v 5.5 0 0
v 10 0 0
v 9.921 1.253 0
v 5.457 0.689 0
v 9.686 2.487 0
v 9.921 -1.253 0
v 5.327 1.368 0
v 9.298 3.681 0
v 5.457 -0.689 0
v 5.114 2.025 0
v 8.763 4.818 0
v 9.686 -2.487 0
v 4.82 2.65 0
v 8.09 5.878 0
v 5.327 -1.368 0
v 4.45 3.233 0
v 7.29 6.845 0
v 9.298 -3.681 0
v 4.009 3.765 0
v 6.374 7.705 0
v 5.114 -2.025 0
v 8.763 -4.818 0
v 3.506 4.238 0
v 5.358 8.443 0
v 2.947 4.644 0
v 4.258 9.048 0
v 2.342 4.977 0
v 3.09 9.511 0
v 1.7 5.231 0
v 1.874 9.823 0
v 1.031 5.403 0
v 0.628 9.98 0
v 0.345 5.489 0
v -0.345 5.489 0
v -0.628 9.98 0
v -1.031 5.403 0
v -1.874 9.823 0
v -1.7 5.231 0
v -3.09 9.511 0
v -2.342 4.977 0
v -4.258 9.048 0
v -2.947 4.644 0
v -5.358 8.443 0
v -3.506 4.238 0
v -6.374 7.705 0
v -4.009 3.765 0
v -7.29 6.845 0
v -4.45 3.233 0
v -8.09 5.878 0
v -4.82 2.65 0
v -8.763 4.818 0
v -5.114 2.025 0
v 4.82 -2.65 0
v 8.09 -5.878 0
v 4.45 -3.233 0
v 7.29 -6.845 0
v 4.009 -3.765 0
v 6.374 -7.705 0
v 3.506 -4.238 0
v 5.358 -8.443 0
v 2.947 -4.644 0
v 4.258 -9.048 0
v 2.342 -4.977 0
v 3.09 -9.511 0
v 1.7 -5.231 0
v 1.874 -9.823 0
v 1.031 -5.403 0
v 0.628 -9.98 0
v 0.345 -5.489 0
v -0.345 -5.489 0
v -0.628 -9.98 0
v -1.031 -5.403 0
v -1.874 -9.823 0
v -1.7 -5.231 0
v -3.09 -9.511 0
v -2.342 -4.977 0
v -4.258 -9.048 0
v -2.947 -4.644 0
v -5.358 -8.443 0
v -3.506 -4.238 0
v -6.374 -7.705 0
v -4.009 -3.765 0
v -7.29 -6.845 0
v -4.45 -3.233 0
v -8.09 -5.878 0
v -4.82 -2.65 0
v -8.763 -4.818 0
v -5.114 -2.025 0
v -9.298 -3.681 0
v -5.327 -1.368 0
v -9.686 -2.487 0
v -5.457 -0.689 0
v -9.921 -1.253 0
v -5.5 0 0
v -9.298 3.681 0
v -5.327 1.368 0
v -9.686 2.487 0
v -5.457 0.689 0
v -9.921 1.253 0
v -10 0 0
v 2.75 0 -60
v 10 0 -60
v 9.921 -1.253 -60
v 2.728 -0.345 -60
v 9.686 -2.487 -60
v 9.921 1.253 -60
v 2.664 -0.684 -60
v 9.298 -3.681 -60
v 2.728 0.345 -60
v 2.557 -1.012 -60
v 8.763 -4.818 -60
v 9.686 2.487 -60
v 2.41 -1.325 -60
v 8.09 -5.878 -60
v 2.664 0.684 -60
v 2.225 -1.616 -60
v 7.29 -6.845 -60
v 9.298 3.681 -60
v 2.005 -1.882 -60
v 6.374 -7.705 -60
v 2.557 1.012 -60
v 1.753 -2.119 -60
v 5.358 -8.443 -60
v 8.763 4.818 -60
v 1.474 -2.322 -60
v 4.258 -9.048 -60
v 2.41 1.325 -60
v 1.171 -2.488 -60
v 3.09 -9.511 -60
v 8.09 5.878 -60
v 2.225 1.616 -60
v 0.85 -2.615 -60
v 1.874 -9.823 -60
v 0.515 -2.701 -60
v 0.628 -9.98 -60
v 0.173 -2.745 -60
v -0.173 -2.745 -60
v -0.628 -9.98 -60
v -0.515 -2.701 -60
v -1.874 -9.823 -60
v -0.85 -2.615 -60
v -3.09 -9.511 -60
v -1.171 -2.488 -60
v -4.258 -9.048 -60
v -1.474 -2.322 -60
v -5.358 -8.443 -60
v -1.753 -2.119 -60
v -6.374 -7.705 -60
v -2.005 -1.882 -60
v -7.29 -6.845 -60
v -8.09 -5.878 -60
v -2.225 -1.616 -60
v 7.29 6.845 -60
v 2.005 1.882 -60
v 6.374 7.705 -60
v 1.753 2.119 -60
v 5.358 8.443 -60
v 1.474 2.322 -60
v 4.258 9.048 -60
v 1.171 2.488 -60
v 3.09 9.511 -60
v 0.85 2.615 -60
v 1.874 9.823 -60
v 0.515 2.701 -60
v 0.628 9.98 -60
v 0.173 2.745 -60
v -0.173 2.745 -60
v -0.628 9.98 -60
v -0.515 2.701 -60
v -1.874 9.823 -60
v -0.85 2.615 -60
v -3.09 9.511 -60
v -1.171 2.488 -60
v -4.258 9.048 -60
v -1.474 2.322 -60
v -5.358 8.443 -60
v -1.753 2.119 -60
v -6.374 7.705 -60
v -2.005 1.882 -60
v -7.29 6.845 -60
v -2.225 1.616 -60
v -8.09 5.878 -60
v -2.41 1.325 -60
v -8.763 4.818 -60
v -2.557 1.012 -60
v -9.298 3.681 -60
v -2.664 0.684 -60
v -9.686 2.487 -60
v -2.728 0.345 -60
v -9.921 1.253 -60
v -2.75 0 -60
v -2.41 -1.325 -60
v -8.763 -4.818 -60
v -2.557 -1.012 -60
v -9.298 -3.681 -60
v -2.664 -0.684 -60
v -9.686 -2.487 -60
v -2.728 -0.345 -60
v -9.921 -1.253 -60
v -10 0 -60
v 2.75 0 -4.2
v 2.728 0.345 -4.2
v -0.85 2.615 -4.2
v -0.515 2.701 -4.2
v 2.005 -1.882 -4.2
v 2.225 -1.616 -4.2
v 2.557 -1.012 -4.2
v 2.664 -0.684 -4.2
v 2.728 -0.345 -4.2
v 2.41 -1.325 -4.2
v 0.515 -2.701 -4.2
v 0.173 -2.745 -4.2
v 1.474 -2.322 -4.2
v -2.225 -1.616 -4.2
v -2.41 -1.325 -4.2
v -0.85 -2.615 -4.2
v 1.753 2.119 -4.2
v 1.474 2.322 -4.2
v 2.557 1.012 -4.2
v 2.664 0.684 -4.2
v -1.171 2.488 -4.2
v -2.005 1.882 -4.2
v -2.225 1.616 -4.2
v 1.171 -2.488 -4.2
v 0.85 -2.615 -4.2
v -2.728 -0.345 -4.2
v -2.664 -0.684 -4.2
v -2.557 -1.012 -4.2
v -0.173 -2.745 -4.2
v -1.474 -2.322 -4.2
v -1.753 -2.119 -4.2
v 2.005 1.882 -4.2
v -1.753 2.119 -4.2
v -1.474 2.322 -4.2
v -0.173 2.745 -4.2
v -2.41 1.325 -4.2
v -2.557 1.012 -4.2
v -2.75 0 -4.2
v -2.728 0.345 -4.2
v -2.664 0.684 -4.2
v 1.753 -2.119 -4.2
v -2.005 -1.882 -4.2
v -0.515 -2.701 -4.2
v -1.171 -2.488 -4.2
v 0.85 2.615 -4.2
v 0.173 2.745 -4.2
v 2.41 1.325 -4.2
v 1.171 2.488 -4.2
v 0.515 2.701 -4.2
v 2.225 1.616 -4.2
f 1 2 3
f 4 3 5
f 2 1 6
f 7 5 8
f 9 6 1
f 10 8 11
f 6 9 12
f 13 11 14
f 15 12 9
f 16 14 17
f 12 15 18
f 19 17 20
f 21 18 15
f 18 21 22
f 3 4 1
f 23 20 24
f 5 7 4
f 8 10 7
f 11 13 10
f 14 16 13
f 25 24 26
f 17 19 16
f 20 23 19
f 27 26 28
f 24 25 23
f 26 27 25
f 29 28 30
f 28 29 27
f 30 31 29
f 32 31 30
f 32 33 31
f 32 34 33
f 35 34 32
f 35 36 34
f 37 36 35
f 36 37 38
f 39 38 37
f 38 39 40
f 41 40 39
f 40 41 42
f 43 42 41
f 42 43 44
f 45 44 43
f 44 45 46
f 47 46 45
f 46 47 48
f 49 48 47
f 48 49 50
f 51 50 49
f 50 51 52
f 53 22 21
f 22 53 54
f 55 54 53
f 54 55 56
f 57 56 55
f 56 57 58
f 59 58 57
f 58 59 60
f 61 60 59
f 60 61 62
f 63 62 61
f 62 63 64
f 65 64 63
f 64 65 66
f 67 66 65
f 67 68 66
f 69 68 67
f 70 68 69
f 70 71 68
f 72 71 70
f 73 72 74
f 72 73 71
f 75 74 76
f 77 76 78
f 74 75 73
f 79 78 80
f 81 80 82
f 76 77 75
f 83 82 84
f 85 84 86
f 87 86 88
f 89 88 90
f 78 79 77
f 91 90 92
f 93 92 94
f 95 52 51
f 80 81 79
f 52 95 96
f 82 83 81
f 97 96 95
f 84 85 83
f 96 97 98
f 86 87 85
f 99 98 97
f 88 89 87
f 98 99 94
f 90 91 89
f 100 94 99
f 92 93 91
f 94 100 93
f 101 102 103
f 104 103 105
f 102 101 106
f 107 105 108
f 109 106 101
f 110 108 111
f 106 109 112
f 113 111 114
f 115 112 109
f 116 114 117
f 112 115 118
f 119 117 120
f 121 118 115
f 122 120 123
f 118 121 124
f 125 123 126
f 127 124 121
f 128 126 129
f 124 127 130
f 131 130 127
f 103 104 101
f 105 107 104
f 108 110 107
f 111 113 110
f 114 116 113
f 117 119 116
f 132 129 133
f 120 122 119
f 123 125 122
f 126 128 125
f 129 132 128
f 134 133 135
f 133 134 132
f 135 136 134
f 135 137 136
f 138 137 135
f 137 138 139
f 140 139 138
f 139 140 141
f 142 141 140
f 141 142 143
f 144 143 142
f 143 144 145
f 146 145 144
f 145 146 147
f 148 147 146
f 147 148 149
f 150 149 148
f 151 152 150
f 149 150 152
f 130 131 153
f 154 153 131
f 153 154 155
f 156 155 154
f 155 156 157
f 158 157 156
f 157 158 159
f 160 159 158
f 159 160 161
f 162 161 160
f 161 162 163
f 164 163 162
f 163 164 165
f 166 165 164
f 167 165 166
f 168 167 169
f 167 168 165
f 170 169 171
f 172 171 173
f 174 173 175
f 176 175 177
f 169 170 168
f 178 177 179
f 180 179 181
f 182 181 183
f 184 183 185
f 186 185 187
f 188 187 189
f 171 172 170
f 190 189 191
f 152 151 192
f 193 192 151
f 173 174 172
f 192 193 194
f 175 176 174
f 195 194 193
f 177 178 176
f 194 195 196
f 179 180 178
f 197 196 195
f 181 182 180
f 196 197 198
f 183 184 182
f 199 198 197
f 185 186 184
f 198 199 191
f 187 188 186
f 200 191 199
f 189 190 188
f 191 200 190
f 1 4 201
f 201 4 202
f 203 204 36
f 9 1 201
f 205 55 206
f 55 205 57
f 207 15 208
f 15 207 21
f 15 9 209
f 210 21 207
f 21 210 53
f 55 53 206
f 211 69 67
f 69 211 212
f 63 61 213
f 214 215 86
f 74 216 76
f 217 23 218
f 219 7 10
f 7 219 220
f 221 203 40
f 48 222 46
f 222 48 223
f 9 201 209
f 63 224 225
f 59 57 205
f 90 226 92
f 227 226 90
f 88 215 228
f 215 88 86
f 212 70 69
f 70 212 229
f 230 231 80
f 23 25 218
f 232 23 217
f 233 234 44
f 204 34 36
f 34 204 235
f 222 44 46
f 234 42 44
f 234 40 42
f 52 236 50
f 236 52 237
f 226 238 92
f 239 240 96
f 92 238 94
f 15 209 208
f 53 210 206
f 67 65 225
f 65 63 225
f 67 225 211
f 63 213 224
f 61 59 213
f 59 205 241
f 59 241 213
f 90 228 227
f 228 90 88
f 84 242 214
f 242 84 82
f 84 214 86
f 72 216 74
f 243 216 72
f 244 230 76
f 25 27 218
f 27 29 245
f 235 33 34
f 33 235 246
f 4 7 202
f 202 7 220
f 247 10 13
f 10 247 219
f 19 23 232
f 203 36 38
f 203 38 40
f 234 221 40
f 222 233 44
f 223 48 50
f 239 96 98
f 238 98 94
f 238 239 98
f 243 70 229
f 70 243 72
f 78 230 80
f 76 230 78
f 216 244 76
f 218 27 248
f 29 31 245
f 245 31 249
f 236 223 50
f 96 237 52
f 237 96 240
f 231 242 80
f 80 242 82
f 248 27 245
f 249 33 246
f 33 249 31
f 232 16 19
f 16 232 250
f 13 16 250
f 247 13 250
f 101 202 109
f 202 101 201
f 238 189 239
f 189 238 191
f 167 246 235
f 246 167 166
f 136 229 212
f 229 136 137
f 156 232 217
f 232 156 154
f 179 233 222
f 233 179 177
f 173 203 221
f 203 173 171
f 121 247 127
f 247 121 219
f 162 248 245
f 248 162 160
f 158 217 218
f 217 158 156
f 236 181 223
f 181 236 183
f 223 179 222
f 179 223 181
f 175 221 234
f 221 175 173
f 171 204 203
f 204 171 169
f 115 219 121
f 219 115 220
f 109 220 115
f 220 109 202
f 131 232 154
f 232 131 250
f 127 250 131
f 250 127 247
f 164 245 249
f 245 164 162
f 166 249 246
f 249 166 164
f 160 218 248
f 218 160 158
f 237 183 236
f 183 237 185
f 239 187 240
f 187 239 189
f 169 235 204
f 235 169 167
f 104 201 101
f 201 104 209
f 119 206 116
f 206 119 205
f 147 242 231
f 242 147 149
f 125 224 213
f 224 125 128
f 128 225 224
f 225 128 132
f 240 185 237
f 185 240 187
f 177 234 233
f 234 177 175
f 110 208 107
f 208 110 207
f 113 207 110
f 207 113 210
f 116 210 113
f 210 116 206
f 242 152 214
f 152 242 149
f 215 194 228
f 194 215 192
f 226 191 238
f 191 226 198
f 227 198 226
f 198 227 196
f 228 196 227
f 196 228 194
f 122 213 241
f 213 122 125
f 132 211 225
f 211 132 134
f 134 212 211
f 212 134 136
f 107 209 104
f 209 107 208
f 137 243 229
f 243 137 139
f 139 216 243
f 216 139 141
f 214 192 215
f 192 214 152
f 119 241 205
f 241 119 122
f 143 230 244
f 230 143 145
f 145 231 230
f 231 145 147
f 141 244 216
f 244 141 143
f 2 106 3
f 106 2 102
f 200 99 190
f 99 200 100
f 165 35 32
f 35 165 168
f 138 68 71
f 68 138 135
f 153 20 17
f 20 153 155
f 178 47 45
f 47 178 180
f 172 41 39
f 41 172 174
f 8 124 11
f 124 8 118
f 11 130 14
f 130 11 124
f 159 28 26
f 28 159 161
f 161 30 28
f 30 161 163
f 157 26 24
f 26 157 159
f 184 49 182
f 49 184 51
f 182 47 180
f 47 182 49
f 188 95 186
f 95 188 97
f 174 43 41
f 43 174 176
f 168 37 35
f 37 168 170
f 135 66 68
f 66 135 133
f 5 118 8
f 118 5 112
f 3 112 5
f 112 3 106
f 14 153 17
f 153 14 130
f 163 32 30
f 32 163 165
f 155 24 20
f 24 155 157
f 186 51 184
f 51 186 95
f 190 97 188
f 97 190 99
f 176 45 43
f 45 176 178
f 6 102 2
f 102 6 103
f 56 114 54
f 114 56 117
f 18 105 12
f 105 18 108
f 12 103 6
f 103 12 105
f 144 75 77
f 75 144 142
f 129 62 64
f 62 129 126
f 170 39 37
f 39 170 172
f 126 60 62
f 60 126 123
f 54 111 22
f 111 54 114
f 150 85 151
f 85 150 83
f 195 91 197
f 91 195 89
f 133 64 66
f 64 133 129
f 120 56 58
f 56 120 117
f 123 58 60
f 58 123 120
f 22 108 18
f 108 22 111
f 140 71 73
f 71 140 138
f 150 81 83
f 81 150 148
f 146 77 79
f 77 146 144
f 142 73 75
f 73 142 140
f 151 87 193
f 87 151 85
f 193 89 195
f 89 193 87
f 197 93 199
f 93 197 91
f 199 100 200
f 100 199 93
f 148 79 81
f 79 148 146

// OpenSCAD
$fn = 50;


difference() {
	union() {
		translate(v = [0, 0, -60.0000000000]) {
			cylinder(h = 60, r = 10.0000000000);
		}
	}
	union() {
		translate(v = [0, 0, 0]) {
			rotate(a = [0, 0, 0]) {
				difference() {
					union() {
						#translate(v = [0, 0, -60.0000000000]) {
							cylinder(h = 60, r = 2.2500000000);
						}
						#translate(v = [0, 0, -4.2000000000]) {
							cylinder(h = 4.2000000000, r1 = 2.7500000000, r2 = 5.5000000000);
						}
						#translate(v = [0, 0, -60.0000000000]) {
							cylinder(h = 60, r = 2.7500000000);
						}
						#translate(v = [0, 0, -60.0000000000]) {
							cylinder(h = 60, r = 2.2500000000);
						}
					}
					union();
				}
			}
		}
	}
}
